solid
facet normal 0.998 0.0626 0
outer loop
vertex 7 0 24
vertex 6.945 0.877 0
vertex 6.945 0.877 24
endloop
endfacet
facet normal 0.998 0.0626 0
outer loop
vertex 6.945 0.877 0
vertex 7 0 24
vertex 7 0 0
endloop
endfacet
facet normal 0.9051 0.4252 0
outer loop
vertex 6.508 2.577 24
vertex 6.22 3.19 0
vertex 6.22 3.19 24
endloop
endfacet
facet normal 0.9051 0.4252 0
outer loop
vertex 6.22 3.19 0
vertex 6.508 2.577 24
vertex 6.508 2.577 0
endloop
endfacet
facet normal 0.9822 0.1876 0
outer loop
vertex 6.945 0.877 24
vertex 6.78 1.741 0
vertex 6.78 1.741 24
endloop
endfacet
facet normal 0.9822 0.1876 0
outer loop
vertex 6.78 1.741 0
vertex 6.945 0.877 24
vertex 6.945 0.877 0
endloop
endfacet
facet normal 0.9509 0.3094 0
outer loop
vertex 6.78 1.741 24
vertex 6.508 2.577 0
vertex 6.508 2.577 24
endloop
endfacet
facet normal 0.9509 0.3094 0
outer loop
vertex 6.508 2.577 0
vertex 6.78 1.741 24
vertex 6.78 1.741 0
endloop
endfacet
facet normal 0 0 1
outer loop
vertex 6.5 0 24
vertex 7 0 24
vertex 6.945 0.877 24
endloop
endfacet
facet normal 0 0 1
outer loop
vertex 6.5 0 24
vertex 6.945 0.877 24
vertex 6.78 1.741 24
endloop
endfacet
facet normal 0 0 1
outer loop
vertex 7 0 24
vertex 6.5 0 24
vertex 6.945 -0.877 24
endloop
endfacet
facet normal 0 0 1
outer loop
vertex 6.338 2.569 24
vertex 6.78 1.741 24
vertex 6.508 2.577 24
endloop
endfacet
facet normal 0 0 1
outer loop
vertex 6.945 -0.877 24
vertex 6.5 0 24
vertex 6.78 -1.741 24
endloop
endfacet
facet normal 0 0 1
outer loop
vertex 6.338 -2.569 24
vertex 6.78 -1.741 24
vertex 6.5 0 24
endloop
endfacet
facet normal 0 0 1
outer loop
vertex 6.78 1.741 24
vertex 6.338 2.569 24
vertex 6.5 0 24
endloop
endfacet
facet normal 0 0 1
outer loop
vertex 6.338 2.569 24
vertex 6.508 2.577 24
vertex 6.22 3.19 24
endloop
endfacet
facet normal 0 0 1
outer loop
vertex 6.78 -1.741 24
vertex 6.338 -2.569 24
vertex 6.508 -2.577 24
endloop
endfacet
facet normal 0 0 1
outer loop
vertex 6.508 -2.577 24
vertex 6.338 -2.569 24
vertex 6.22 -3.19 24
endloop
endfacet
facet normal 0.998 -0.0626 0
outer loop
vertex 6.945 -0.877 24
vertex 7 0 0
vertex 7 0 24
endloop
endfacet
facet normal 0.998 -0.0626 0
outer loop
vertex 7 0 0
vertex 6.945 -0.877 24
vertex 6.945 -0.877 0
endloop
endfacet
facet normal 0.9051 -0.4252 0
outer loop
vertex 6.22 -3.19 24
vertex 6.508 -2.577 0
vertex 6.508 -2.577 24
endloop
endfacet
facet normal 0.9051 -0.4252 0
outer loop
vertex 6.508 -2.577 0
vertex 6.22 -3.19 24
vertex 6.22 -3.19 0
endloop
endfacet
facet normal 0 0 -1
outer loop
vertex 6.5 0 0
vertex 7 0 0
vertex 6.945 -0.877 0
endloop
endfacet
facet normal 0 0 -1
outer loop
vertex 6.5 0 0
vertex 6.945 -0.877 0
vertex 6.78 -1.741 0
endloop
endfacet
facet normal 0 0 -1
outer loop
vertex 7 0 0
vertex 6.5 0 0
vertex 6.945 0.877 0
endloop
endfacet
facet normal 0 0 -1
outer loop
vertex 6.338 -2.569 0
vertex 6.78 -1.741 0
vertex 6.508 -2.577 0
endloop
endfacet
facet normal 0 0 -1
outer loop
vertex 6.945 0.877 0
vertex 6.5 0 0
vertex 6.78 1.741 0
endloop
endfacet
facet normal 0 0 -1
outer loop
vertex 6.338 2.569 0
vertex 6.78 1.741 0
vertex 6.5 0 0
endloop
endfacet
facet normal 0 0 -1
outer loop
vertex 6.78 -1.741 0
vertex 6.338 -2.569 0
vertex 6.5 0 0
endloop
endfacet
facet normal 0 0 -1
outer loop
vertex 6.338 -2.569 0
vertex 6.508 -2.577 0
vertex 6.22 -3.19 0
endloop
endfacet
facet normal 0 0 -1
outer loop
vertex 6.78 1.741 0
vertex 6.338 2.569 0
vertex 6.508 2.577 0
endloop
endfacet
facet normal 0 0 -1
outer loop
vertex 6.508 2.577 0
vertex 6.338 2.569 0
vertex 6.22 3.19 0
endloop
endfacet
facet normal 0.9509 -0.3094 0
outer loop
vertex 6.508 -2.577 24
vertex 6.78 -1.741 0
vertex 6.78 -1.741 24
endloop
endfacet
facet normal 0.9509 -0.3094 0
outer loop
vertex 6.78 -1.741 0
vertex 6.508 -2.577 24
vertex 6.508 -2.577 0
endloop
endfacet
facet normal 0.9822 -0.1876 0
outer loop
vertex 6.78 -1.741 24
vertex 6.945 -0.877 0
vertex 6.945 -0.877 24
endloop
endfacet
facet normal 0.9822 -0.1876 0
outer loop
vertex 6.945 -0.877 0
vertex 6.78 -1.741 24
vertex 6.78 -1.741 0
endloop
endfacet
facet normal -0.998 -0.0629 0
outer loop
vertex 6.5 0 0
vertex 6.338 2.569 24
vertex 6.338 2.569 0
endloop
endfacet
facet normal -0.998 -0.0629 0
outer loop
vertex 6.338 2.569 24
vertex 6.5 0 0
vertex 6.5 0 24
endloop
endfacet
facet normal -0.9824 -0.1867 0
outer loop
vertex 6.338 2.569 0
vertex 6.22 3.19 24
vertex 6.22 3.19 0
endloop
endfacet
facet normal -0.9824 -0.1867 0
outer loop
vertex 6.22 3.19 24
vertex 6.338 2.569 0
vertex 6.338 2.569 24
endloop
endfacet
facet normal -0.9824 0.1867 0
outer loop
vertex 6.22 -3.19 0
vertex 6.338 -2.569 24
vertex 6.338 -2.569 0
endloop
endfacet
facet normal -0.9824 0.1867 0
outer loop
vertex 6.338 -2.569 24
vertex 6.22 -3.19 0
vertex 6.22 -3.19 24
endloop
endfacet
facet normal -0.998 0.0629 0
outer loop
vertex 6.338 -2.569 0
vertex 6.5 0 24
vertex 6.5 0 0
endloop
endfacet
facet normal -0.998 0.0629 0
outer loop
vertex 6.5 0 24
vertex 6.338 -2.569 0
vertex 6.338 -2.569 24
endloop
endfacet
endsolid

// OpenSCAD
$fn = 50;


difference() {
	union() {
		cylinder(h = 24, r = 7.0000000000);
		translate(v = [-17.0000000000, 0, 0]) {
			cylinder(h = 24, r = 7.0000000000);
		}
	}
	union() {
		cylinder(h = 24, r = 3.2500000000);
		cylinder(h = 24, r = 1.8000000000);
		cylinder(h = 24, r = 1.8000000000);
		cylinder(h = 24, r = 1.8000000000);
		translate(v = [-21.5000000000, 0, 0]) {
			hull() {
				translate(v = [-3.7500000000, 0.0000000000, 0]) {
					cylinder(h = 24, r = 10.5000000000);
				}
				translate(v = [3.7500000000, 0.0000000000, 0]) {
					cylinder(h = 24, r = 10.5000000000);
				}
				translate(v = [-3.7500000000, -0.0000000000, 0]) {
					cylinder(h = 24, r = 10.5000000000);
				}
				translate(v = [3.7500000000, -0.0000000000, 0]) {
					cylinder(h = 24, r = 10.5000000000);
				}
			}
		}
		translate(v = [-14.0000000000, 0, 0.0000000000]) {
			cylinder(h = 24, r = 20.5000000000);
		}
	}
}
